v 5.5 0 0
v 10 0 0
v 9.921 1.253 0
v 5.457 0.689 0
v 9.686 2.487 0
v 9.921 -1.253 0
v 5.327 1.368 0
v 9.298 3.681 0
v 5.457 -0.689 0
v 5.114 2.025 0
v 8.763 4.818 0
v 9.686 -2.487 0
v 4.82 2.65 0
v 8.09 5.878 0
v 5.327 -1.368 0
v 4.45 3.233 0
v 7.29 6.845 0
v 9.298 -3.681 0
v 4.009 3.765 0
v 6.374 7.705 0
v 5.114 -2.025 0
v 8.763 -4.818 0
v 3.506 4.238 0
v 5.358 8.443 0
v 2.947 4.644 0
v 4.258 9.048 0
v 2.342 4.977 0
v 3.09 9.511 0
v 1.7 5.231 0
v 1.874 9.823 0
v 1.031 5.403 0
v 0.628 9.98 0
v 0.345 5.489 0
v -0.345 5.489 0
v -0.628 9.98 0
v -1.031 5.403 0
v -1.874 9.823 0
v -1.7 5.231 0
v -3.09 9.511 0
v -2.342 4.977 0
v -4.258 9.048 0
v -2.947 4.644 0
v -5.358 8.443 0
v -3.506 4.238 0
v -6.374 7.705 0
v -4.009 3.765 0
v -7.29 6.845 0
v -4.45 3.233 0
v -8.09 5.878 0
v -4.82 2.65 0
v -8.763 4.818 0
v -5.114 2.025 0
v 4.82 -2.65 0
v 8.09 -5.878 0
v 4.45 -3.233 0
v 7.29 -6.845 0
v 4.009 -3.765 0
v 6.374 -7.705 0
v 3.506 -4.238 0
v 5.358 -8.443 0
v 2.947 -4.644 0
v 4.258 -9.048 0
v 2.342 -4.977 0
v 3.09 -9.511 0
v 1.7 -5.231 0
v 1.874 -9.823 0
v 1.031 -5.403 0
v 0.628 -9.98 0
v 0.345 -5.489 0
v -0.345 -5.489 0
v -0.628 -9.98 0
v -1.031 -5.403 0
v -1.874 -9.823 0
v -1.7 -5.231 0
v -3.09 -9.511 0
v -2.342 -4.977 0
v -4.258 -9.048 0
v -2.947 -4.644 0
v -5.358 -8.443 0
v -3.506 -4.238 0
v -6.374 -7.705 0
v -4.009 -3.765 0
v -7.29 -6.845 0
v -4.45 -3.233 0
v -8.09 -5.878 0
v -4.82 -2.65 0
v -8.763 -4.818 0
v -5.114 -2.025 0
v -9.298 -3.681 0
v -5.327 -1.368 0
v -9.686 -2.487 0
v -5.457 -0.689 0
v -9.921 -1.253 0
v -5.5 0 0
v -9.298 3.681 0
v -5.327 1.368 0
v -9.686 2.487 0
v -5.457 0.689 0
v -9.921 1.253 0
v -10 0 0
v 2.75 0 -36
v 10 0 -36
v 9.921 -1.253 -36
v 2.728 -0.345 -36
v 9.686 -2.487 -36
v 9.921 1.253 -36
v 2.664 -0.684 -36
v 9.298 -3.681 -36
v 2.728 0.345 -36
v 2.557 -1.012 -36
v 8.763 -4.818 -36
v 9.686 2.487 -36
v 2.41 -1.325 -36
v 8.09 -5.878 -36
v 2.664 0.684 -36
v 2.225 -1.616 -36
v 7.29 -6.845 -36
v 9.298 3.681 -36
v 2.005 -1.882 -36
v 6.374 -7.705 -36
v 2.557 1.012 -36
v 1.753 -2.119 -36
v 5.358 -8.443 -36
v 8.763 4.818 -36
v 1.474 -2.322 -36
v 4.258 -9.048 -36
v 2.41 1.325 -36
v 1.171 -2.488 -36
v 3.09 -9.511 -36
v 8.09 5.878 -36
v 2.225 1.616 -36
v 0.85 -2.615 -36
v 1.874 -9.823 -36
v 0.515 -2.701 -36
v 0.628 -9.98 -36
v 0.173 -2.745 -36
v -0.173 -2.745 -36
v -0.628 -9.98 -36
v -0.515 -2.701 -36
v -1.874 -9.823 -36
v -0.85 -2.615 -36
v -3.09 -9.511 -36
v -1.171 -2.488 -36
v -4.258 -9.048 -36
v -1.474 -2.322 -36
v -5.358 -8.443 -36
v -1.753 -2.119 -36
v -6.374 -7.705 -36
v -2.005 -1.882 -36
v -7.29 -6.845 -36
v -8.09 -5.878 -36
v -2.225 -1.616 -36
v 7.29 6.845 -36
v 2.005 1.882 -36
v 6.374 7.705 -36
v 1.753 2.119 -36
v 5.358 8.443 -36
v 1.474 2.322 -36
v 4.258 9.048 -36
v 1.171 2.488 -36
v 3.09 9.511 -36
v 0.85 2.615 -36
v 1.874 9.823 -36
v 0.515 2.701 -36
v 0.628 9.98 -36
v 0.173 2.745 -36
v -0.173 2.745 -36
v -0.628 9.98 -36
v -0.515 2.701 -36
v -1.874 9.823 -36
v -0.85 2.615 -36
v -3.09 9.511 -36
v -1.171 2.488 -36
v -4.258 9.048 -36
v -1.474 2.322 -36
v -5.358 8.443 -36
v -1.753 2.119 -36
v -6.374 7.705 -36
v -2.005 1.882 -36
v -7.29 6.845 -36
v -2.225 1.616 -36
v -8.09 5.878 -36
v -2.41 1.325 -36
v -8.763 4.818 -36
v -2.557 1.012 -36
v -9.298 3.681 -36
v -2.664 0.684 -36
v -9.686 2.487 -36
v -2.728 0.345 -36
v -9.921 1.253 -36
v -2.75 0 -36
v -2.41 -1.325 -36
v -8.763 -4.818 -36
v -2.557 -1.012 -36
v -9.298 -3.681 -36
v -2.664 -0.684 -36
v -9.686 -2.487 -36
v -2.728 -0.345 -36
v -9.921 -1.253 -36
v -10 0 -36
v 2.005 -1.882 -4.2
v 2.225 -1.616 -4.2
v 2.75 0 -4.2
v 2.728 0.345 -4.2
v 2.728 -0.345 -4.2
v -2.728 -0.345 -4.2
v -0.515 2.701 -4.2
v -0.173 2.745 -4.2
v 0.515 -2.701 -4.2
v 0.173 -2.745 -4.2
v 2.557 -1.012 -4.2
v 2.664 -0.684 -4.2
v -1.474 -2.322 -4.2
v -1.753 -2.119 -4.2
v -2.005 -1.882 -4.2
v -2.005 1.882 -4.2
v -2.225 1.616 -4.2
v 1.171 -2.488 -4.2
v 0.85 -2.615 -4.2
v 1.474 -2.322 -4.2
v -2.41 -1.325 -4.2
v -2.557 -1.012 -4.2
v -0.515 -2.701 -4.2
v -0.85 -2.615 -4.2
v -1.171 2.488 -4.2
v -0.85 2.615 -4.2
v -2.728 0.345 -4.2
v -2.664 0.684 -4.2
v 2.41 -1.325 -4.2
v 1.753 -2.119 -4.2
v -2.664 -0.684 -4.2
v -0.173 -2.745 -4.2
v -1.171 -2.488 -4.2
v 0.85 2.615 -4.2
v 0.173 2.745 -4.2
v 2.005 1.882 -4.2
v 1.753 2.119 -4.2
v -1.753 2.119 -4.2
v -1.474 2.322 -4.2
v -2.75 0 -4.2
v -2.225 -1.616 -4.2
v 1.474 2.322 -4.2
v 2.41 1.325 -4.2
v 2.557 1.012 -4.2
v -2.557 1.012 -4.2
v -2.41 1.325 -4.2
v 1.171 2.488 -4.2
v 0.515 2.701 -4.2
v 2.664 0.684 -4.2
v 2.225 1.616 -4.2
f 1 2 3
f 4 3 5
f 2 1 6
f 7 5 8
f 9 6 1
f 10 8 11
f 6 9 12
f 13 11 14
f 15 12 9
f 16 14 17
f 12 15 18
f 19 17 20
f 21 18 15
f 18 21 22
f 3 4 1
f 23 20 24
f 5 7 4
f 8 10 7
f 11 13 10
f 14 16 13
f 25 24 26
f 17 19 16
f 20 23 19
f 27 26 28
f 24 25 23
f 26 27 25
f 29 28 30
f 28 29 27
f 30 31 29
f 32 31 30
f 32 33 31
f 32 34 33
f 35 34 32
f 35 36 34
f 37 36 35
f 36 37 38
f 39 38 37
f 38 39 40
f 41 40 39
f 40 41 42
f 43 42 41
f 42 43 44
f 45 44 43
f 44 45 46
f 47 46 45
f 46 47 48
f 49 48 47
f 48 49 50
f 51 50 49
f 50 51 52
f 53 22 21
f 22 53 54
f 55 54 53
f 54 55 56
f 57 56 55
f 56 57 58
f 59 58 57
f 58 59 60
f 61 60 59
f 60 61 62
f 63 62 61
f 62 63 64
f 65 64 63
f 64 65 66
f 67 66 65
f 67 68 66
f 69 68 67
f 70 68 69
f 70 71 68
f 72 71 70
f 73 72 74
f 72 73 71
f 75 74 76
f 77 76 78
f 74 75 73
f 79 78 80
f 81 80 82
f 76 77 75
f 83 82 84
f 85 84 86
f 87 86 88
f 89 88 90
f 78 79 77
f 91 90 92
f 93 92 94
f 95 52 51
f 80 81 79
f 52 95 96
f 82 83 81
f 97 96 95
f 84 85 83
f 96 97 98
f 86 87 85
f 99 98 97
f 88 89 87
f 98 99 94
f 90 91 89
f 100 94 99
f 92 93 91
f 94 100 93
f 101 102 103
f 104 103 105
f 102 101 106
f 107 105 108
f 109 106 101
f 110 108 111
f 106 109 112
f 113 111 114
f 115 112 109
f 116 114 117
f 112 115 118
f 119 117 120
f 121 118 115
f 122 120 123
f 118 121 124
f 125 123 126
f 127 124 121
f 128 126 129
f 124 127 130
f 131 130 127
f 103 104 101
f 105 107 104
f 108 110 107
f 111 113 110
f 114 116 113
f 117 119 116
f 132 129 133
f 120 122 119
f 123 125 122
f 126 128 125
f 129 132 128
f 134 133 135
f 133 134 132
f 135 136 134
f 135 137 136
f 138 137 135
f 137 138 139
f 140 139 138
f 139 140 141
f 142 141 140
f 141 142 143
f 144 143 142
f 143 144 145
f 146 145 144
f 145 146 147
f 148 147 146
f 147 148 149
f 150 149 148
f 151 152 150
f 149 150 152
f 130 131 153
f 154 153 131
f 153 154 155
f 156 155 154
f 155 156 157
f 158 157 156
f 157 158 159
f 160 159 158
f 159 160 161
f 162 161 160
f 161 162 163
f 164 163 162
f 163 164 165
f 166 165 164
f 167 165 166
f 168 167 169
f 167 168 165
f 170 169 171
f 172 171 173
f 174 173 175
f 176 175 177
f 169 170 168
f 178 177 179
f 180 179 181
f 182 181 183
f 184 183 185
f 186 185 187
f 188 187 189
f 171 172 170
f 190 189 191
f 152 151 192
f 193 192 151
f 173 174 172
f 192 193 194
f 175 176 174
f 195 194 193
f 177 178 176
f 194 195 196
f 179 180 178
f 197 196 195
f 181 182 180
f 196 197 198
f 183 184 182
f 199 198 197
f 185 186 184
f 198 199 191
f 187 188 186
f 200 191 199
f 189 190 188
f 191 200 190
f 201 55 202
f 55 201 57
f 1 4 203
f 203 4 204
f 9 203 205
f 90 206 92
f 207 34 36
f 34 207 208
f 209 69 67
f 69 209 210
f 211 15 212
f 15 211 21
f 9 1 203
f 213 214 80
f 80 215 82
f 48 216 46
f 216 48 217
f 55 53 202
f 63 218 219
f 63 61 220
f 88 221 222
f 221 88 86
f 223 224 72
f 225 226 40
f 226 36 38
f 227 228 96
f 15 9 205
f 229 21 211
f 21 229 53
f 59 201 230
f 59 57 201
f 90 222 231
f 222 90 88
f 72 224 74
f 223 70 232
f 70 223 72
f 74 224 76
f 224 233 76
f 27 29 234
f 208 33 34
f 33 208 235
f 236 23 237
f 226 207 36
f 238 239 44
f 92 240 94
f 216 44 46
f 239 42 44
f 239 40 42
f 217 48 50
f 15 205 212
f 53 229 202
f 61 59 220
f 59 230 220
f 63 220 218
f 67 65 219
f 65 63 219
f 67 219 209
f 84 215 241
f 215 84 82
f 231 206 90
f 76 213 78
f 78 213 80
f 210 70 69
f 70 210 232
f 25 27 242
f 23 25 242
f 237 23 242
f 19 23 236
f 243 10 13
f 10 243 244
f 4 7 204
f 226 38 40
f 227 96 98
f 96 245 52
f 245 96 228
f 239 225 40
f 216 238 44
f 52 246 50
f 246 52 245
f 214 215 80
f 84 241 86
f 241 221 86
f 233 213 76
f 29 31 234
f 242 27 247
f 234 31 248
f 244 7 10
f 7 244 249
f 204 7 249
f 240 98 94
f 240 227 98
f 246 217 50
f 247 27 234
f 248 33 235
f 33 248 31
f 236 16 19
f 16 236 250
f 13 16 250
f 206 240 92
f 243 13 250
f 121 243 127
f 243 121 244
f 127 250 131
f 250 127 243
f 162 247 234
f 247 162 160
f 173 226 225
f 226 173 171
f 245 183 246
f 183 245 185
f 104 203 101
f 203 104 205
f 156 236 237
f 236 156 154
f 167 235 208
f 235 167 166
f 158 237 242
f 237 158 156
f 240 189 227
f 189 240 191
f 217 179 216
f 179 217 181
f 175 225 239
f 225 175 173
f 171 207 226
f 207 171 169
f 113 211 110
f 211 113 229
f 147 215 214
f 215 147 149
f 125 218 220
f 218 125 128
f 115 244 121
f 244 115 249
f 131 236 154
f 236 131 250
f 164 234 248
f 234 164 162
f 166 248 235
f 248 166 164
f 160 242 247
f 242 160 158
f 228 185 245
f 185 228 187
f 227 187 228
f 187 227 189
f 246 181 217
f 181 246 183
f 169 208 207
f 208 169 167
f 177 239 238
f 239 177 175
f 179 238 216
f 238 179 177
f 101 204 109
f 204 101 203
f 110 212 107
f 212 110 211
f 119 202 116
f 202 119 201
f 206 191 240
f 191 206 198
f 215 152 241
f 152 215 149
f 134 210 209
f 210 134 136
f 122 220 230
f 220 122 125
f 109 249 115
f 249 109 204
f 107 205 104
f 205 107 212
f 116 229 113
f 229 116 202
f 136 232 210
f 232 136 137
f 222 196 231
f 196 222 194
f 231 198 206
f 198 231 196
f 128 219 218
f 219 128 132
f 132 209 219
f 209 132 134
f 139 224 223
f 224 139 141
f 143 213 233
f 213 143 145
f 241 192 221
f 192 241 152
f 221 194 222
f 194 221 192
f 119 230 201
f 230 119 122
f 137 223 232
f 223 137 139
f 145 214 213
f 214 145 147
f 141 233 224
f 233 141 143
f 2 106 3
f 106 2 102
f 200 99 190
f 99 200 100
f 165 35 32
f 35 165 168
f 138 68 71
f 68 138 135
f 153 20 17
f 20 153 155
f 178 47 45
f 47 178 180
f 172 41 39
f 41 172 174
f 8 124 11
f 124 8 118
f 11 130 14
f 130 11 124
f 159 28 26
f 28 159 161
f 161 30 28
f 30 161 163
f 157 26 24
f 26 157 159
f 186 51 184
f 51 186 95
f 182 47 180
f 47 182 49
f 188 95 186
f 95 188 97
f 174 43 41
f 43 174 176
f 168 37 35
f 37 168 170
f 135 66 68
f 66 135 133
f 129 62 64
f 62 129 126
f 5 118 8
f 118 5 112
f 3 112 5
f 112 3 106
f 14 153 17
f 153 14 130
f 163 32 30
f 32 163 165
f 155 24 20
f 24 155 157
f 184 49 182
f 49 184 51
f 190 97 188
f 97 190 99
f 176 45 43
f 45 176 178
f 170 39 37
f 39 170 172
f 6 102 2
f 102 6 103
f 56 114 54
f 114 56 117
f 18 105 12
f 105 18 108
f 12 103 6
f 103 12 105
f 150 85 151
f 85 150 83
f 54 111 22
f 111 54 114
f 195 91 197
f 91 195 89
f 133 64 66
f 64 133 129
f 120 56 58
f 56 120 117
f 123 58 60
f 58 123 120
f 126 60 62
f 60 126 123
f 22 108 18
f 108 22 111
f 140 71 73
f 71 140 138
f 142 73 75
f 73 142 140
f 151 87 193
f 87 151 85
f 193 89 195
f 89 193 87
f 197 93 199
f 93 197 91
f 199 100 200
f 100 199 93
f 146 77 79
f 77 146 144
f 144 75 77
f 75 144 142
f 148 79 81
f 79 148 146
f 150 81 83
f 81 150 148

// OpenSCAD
$fn = 50;


difference() {
	union() {
		translate(v = [0, 0, -36.0000000000]) {
			cylinder(h = 36, r = 10.0000000000);
		}
	}
	union() {
		translate(v = [0, 0, 0]) {
			rotate(a = [0, 0, 0]) {
				difference() {
					union() {
						#translate(v = [0, 0, -36.0000000000]) {
							cylinder(h = 36, r = 2.2500000000);
						}
						#translate(v = [0, 0, -4.2000000000]) {
							cylinder(h = 4.2000000000, r1 = 2.7500000000, r2 = 5.5000000000);
						}
						#translate(v = [0, 0, -36.0000000000]) {
							cylinder(h = 36, r = 2.7500000000);
						}
						#translate(v = [0, 0, -36.0000000000]) {
							cylinder(h = 36, r = 2.2500000000);
						}
					}
					union();
				}
			}
		}
	}
}
